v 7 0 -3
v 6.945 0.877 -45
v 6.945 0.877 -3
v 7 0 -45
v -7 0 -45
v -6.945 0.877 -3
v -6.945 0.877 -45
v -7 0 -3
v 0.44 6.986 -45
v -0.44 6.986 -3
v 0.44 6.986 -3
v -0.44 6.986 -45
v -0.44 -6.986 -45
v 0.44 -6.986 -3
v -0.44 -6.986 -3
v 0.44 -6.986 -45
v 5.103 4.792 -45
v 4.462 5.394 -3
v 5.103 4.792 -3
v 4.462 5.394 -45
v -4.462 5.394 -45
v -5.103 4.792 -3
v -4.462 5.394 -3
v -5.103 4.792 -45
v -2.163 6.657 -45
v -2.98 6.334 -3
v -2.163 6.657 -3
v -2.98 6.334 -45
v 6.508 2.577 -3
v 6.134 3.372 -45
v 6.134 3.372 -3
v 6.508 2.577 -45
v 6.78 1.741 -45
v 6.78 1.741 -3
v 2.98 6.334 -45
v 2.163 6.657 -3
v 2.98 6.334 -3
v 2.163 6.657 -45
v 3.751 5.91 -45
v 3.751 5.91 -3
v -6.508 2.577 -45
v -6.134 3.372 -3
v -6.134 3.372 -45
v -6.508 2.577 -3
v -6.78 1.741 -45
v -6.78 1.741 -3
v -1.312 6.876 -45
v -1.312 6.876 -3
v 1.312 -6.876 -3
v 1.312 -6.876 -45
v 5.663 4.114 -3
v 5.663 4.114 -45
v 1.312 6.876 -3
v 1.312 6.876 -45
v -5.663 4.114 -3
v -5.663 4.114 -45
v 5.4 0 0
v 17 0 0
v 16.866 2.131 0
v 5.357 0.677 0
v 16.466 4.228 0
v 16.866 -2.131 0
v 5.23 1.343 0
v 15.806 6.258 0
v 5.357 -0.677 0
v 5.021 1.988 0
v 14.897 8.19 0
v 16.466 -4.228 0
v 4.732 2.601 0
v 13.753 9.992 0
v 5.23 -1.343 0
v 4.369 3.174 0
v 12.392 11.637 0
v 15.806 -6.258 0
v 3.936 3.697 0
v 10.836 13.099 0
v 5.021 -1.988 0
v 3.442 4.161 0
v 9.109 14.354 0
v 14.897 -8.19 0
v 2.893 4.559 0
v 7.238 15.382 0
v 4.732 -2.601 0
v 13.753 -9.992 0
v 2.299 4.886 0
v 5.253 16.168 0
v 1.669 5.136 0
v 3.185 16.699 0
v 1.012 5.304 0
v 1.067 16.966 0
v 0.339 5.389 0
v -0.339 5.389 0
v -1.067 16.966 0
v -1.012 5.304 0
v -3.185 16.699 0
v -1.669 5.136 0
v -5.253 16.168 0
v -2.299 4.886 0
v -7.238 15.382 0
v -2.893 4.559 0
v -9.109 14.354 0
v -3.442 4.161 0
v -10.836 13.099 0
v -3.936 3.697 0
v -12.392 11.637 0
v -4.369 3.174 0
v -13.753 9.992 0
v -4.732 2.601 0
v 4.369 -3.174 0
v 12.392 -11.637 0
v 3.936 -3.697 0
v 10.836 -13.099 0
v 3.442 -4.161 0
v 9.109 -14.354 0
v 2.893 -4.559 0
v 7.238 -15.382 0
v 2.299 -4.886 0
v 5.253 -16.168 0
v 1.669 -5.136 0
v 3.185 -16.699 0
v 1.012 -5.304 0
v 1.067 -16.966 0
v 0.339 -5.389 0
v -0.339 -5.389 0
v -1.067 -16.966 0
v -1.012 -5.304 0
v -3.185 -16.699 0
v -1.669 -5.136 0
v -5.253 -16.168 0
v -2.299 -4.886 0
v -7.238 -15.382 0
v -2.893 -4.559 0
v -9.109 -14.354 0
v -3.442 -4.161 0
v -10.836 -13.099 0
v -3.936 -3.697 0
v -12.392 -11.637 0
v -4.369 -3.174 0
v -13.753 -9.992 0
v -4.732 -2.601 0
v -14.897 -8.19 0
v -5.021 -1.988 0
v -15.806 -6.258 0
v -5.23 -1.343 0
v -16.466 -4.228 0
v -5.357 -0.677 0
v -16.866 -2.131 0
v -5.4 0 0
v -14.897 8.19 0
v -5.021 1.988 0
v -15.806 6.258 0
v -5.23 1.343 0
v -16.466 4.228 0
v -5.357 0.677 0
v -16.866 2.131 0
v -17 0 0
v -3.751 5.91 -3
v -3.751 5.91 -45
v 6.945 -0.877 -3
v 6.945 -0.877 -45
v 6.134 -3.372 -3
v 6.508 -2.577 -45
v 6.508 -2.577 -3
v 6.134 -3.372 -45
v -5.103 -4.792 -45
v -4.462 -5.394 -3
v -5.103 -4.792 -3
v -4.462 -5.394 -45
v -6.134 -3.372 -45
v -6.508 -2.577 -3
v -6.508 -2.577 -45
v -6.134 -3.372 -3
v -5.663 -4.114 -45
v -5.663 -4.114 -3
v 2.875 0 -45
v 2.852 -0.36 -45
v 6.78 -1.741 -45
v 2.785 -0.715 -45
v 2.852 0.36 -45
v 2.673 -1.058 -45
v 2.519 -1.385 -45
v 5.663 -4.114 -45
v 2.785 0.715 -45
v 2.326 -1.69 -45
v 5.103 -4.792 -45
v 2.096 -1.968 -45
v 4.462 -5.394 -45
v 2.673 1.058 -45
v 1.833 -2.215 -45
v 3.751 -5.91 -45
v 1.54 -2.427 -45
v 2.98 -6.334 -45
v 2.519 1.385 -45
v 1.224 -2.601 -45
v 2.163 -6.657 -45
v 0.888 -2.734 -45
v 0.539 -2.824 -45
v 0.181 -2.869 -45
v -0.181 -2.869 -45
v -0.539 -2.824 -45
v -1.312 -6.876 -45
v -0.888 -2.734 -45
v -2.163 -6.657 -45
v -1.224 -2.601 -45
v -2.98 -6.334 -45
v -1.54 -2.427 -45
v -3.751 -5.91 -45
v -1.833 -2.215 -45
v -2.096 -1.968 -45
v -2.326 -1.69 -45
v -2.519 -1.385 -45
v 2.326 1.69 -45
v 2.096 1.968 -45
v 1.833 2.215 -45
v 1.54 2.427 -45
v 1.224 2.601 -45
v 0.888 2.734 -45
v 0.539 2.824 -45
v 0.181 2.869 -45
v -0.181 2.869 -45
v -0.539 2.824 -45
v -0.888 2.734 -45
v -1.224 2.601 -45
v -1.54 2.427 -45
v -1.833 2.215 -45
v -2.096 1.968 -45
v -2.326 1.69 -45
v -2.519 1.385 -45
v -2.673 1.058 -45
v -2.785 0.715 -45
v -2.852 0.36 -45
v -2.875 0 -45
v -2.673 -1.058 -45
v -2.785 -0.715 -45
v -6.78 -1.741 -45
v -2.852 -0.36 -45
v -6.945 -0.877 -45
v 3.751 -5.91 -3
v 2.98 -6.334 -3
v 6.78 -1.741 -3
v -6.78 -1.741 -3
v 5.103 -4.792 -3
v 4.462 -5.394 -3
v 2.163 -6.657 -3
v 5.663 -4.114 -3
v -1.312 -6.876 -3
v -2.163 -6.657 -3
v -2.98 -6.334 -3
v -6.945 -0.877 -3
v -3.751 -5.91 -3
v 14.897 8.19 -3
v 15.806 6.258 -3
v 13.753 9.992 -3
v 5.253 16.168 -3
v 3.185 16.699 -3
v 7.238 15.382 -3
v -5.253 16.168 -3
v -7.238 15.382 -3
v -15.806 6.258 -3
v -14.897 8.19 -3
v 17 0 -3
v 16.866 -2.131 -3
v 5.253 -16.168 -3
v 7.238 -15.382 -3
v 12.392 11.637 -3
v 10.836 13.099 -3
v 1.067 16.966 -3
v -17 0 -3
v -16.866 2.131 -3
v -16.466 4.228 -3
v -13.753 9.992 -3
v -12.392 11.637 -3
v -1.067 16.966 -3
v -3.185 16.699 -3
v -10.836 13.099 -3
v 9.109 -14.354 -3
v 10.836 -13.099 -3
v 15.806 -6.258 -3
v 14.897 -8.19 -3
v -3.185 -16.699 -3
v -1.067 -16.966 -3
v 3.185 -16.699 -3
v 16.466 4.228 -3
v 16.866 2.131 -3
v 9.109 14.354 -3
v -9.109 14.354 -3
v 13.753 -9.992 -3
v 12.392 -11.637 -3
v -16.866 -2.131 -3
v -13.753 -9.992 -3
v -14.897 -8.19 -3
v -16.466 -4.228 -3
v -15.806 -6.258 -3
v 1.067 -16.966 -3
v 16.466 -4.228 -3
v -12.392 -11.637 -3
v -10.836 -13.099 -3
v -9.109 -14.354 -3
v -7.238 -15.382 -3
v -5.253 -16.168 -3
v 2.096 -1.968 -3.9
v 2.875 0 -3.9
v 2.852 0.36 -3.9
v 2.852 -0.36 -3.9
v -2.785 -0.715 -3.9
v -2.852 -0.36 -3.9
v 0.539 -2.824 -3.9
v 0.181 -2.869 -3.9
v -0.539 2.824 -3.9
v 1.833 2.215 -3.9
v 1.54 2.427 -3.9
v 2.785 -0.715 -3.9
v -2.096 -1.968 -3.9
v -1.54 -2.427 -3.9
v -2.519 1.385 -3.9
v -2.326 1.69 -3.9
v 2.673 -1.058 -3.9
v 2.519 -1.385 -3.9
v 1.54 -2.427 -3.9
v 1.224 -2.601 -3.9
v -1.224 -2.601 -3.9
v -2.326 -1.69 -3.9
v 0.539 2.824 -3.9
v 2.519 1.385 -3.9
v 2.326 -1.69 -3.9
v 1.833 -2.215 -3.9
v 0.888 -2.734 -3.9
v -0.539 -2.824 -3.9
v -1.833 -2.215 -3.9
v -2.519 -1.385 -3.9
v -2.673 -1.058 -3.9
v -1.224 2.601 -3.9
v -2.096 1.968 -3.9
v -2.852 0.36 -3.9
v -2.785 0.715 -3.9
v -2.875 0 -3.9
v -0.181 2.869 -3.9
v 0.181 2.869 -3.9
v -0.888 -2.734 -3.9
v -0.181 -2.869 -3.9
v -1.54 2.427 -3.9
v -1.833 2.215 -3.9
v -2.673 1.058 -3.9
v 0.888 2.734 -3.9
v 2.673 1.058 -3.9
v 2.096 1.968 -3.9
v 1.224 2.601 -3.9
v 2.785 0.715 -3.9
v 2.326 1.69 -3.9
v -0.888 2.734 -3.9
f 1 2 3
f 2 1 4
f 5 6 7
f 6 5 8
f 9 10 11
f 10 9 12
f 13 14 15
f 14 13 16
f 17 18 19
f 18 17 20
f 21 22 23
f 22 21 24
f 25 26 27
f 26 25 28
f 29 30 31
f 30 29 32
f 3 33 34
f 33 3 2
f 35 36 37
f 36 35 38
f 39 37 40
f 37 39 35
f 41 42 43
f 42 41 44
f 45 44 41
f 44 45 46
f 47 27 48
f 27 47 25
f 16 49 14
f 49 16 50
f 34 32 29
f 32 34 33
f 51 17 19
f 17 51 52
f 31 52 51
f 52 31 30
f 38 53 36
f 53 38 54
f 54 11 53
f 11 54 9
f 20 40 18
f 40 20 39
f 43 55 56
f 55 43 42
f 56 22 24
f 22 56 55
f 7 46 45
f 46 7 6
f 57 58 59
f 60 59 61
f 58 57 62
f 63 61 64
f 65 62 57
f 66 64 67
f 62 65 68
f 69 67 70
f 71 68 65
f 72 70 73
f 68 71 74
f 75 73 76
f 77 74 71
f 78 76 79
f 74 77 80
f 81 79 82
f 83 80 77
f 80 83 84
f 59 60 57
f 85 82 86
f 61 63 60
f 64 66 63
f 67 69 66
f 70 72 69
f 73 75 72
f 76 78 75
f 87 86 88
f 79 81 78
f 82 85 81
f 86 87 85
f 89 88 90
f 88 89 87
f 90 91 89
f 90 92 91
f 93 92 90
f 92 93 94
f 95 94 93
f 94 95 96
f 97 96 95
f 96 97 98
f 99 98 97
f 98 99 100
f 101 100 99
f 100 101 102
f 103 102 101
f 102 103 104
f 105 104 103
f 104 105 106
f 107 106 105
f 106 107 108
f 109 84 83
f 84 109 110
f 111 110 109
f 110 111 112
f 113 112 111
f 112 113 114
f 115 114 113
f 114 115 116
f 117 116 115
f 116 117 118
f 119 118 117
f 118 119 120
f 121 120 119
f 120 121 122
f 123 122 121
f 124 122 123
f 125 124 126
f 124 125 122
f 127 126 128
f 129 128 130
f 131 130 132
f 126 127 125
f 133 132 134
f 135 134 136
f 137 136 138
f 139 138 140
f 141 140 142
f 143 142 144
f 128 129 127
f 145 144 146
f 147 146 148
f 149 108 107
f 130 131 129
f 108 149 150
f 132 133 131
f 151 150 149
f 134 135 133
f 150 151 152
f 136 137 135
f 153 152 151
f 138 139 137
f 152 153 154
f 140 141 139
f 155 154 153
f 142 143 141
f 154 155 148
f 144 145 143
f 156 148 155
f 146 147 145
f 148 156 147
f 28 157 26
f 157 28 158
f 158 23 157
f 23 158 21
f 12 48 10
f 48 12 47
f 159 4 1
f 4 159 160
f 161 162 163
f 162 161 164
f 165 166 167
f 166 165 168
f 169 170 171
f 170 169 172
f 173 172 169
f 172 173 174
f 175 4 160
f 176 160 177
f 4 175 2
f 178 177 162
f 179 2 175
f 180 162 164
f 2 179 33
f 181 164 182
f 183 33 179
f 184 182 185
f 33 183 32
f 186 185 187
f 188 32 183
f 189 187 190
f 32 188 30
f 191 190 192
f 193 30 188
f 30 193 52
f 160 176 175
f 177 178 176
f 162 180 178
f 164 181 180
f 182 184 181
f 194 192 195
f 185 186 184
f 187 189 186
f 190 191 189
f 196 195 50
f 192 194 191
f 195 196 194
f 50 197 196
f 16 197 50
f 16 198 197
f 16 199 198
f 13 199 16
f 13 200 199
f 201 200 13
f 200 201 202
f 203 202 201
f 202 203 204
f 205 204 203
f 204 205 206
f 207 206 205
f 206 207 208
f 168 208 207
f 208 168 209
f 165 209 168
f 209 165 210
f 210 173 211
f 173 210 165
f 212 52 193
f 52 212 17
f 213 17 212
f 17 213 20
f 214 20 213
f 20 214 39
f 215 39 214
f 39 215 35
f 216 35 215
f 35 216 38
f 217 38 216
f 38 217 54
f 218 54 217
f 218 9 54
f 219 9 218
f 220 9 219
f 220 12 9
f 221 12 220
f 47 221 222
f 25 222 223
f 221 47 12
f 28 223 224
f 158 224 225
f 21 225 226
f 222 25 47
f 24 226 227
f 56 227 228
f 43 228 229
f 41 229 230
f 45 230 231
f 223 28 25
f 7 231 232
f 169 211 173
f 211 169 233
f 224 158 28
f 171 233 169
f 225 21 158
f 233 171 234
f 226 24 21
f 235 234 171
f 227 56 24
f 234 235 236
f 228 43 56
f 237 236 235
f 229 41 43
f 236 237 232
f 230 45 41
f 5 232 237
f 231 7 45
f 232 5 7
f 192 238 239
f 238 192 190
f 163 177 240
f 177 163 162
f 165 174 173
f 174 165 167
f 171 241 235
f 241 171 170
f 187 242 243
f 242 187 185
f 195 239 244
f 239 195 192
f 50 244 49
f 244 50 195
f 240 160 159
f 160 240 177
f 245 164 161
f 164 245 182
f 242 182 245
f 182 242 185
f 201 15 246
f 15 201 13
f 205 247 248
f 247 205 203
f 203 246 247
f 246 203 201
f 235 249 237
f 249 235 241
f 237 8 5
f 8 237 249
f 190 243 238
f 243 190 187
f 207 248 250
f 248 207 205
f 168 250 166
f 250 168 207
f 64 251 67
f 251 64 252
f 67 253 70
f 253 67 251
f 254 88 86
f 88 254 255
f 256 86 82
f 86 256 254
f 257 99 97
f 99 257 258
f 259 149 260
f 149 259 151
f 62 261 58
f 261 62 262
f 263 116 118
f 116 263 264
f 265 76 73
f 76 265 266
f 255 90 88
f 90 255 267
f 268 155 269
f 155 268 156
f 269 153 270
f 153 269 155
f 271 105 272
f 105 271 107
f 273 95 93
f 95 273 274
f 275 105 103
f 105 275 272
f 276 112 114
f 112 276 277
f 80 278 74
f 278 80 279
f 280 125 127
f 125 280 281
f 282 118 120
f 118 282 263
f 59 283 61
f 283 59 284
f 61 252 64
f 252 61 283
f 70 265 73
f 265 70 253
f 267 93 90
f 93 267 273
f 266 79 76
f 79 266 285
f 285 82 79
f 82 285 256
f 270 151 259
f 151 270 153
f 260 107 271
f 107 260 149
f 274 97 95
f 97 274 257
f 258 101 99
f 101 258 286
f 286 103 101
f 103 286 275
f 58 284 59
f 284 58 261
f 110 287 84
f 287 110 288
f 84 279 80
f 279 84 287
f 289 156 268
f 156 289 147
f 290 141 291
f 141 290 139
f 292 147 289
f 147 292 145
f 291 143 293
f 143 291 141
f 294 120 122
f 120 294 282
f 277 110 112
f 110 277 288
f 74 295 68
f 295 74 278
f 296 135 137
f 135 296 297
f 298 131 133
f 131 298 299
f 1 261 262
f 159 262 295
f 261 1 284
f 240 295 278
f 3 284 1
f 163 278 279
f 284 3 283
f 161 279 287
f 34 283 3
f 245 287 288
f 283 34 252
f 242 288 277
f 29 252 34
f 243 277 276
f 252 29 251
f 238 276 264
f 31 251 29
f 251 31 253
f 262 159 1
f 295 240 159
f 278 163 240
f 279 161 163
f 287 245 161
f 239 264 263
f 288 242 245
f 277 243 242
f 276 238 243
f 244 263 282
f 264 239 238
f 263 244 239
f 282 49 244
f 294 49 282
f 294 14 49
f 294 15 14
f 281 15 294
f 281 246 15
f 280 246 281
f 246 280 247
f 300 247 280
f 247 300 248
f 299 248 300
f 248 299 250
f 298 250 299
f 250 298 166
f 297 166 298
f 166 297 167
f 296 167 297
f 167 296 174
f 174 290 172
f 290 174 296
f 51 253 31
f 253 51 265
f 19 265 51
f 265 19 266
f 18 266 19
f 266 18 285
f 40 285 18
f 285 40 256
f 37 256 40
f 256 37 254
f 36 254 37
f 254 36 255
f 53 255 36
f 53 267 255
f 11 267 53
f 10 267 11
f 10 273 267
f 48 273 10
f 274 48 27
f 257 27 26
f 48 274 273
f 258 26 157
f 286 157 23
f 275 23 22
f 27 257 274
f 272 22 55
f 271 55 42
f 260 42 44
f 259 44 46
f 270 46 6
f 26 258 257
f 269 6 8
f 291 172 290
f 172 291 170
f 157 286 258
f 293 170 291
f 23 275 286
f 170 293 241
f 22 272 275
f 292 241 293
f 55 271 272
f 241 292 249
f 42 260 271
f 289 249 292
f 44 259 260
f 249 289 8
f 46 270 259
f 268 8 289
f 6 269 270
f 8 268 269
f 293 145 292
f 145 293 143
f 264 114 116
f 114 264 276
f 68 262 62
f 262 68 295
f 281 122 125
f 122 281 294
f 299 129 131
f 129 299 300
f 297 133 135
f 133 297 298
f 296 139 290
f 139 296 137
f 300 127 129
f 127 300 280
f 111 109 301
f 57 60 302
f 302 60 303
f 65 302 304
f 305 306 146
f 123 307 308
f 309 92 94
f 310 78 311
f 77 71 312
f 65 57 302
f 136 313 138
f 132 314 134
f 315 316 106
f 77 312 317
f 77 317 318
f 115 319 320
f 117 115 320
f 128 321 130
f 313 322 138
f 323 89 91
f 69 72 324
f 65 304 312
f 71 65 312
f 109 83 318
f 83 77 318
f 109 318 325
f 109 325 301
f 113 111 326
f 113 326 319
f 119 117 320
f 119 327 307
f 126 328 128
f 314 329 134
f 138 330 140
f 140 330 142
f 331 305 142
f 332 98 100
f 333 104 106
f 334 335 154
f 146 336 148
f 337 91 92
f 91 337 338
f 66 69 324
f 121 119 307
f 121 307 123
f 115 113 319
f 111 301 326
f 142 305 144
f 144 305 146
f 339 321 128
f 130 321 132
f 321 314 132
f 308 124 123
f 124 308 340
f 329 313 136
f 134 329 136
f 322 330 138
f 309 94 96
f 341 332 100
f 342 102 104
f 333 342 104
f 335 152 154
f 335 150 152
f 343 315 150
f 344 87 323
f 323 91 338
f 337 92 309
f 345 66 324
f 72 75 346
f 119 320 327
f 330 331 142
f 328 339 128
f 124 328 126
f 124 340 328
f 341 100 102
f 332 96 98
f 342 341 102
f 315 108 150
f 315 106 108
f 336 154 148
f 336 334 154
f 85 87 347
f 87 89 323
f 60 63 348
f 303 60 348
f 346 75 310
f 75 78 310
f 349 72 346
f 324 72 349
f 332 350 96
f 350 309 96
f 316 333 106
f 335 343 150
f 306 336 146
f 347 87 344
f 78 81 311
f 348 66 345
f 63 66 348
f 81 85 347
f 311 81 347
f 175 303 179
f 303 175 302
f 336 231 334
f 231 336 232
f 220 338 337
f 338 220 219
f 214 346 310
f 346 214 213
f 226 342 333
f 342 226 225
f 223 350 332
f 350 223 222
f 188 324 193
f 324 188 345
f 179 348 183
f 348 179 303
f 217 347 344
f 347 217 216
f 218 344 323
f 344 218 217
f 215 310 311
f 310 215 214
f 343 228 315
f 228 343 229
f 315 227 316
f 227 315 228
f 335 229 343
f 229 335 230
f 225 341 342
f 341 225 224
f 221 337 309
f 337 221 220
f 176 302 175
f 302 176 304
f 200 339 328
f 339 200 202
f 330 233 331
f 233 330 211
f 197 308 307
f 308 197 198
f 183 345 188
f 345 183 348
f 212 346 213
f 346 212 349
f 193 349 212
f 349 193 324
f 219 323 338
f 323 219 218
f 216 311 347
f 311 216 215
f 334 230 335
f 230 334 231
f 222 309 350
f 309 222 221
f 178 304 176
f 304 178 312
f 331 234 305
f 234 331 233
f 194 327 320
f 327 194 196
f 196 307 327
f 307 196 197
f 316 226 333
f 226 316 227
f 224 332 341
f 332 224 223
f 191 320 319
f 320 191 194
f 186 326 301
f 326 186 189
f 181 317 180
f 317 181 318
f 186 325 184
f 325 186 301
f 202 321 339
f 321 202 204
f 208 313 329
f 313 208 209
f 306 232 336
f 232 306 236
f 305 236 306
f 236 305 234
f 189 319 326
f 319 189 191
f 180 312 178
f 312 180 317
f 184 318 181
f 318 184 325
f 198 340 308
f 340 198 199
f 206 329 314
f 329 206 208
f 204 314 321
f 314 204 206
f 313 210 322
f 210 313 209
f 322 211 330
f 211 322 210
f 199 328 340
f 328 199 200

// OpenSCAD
$fn = 50;


difference() {
	union() {
		translate(v = [0, 0, -45.0000000000]) {
			cylinder(h = 45, r = 7.0000000000);
		}
		translate(v = [0, 0, -3.0000000000]) {
			cylinder(h = 3, r = 17.0000000000);
		}
	}
	union() {
		translate(v = [0, 0, 0]) {
			rotate(a = [0, 0, 0]) {
				difference() {
					union() {
						#translate(v = [0, 0, -45.0000000000]) {
							cylinder(h = 45, r = 2.6000000000);
						}
						#translate(v = [0, 0, -3.9000000000]) {
							cylinder(h = 3.9000000000, r = 7.0000000000, r1 = 2.8750000000, r2 = 5.4000000000);
						}
						#translate(v = [0, 0, -45.0000000000]) {
							cylinder(h = 45, r = 2.8750000000);
						}
						#translate(v = [0, 0, -45.0000000000]) {
							cylinder(h = 45, r = 2.6000000000);
						}
					}
					union();
				}
			}
		}
	}
}
